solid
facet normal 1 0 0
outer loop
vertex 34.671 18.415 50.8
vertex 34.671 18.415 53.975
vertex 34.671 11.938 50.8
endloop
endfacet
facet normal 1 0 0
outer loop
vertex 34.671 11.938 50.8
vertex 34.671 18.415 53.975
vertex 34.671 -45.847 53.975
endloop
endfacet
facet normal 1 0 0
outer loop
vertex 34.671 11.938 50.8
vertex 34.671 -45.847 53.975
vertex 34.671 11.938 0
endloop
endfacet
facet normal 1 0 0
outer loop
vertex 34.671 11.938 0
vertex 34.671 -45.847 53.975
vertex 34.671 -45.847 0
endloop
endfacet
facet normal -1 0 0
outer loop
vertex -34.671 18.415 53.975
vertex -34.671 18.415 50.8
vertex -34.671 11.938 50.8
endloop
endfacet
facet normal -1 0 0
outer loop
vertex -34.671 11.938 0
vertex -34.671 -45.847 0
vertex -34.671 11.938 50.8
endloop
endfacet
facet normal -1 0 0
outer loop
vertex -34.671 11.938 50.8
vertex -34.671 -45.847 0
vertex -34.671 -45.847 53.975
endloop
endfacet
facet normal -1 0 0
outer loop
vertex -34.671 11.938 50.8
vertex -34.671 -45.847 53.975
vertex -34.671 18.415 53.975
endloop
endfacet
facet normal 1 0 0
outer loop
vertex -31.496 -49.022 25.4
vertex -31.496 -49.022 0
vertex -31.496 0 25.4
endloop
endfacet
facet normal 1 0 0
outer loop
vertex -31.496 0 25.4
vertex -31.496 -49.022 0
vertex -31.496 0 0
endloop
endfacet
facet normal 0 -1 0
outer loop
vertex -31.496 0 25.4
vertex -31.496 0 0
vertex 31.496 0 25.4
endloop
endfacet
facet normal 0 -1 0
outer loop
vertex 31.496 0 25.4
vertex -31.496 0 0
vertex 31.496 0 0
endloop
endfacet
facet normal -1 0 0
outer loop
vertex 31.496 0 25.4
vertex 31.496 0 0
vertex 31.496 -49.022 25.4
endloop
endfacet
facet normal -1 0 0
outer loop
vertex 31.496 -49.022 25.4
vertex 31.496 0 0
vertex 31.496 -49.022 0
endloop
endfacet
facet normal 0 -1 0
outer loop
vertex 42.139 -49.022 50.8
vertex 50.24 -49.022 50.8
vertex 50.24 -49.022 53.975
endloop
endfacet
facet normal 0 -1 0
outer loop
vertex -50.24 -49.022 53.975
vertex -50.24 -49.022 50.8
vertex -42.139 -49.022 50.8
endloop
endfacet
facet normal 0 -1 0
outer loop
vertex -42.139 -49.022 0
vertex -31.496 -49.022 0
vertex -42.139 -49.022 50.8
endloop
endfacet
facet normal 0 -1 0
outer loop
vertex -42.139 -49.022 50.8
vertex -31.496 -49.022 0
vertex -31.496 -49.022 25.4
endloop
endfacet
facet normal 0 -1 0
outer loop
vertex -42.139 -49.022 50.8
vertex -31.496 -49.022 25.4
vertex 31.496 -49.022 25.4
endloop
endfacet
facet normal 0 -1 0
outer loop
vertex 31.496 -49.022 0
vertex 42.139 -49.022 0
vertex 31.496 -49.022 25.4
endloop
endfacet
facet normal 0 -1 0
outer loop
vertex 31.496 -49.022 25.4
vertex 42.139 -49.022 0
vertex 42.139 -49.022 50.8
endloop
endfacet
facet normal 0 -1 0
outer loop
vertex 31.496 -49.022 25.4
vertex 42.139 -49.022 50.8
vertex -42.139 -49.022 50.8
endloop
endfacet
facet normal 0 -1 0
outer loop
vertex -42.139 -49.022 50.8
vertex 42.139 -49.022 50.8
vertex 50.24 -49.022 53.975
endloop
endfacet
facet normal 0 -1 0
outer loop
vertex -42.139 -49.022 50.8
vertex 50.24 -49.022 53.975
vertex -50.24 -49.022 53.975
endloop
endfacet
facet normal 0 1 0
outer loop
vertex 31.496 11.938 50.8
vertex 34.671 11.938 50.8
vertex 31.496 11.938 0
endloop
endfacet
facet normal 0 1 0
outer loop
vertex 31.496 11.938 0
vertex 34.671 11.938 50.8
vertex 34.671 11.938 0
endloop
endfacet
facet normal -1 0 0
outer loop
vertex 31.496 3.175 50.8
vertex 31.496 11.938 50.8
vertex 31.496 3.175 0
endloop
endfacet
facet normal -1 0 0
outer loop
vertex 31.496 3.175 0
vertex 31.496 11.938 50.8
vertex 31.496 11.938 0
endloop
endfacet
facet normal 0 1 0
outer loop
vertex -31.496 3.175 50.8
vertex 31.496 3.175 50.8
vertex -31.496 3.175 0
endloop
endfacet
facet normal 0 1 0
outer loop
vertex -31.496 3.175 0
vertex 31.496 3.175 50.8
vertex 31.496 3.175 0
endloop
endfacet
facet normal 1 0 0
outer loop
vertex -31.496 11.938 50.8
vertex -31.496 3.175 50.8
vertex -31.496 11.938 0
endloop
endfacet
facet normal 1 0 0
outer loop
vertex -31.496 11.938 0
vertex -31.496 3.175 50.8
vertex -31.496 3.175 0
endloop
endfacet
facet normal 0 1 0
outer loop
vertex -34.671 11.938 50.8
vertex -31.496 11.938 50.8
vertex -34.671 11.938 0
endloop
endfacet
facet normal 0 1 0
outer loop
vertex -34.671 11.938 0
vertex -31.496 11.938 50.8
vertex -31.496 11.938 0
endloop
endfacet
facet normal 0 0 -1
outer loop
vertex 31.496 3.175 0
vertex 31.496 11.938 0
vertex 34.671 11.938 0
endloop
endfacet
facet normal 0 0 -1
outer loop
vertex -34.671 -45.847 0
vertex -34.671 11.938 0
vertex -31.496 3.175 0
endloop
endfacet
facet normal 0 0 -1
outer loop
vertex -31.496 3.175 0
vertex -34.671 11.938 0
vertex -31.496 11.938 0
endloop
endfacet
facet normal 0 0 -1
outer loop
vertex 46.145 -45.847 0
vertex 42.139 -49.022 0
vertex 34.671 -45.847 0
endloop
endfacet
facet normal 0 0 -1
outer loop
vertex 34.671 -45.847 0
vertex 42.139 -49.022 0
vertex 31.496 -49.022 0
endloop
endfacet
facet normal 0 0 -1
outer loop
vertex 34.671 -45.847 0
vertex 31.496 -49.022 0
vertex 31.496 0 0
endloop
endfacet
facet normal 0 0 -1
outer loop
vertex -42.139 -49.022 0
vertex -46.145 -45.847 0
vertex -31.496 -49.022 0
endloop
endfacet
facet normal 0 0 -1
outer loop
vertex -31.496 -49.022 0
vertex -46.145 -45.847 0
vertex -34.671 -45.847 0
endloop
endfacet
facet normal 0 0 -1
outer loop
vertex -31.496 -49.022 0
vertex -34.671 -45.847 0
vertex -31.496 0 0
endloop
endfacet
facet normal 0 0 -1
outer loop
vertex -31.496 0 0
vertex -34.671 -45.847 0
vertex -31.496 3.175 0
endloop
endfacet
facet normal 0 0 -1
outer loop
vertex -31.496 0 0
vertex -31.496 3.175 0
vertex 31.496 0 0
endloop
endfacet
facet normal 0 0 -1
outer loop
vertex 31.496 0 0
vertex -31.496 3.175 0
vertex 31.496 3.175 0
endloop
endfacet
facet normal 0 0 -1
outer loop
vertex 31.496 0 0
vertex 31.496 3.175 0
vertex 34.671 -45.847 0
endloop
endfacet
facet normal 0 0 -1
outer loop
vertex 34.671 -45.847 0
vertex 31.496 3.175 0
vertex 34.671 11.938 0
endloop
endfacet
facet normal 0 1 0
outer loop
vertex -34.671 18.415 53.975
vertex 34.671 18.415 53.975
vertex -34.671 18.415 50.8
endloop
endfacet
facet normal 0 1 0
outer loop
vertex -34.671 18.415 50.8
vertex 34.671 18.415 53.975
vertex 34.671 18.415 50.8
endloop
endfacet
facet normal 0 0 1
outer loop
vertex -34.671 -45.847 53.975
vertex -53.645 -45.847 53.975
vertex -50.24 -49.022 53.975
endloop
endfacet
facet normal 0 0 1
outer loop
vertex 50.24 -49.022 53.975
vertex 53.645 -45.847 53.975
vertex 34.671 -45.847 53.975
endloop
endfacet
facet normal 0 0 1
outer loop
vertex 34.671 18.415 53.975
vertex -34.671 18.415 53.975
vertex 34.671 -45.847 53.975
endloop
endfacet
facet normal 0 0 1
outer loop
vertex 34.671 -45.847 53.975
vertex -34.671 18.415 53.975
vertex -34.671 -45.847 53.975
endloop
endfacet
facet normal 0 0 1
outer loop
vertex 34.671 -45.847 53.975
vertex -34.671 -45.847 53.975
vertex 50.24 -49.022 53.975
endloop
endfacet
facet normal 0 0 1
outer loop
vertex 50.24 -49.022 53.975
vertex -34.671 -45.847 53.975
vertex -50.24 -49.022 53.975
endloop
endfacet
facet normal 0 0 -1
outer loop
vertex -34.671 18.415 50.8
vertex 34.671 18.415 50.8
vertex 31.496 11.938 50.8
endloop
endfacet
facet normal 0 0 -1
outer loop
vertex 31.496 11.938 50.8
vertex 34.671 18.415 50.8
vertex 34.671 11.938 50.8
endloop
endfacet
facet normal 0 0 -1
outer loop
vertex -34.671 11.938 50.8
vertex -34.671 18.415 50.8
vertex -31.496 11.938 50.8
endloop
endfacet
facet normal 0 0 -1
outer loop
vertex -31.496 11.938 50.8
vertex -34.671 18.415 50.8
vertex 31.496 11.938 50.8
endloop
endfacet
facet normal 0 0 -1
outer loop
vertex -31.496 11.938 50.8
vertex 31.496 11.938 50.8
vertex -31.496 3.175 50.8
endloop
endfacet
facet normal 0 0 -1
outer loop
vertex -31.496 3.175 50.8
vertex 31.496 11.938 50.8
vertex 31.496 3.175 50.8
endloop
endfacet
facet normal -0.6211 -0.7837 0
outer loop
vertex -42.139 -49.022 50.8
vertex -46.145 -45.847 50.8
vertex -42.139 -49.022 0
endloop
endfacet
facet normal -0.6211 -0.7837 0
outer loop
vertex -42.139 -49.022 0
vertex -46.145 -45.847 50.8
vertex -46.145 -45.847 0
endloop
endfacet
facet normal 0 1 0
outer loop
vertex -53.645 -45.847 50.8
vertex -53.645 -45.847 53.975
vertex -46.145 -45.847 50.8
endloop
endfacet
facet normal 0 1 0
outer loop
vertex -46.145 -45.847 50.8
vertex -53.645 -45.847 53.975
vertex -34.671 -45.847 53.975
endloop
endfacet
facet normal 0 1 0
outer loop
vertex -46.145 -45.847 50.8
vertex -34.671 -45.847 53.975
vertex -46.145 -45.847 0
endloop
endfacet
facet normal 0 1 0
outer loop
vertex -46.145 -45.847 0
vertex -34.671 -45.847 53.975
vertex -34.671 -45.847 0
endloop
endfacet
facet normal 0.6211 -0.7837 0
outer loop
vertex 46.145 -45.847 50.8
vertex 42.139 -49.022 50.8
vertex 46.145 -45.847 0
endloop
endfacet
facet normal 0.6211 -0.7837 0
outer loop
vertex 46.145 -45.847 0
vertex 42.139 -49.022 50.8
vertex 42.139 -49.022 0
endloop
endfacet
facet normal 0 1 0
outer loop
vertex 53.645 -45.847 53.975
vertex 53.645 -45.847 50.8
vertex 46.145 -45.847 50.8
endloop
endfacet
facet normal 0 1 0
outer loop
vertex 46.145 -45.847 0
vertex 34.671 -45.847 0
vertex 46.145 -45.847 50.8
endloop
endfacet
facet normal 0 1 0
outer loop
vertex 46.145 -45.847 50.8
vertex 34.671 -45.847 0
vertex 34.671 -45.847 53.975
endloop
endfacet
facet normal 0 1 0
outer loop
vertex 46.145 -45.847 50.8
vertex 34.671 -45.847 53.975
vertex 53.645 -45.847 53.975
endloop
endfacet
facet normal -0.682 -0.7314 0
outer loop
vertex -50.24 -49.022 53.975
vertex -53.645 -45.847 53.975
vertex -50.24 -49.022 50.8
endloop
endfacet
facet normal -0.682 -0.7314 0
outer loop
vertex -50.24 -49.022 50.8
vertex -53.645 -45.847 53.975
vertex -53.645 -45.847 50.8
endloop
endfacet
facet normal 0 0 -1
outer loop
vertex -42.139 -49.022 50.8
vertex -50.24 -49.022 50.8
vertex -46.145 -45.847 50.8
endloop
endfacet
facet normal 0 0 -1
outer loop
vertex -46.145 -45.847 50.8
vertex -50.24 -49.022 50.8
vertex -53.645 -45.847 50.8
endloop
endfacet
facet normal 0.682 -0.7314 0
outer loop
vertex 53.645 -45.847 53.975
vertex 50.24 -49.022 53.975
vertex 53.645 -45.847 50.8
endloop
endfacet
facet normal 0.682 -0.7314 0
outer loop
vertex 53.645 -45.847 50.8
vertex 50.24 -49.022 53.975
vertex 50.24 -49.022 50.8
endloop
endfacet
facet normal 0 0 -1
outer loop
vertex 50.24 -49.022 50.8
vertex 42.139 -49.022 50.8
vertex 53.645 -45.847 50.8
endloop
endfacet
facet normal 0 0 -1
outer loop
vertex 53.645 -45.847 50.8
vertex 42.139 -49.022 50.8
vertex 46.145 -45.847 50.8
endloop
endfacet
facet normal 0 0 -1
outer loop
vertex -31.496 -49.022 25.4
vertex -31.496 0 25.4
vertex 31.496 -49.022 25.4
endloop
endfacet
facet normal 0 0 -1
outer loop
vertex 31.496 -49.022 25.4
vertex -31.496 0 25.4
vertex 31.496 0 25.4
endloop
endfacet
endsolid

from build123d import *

# Parameters (mm, degrees)
BOSS_EXTRUDE2_DEPTH = 50.8
SKETCH3_W           = 69.342
SKETCH3_H           = 67.437
BOSS_EXTRUDE3_DEPTH = 3.175
BOSS_EXTRUDE4_DEPTH = 53.975
BOSS_EXTRUDE6_DEPTH = 3.175
SKETCH6_W           = 62.992
SKETCH6_H           = 49.022
BOSS_EXTRUDE7_DEPTH = 25.4


with BuildPart() as part:
    # Sketch2 → Boss-Extrude2 (new body)
    with BuildSketch(Plane.XY):
        Polygon((-34.671, -49.022), (-31.496, -49.022), (-31.496, 0), (31.496, 0), (31.496, -49.022), (34.671, -49.022), (34.671, 11.938), (31.496, 11.938), (31.496, 3.175), (-31.496, 3.175), (-31.496, 11.938), (-34.671, 11.938), align=None)
    extrude(amount=BOSS_EXTRUDE2_DEPTH)

    # Sketch3 → Boss-Extrude3 (add)
    with BuildSketch(Plane.XY.offset(50.8)):
        with Locations((0, -15.3035)):
            Rectangle(SKETCH3_W, SKETCH3_H)
    extrude(amount=BOSS_EXTRUDE3_DEPTH)

    # Sketch4 → Boss-Extrude4 (add)
    with BuildSketch(Plane.XY.offset(53.975)):
        with BuildLine():
            Line((-34.671, -49.022), (-42.1386, -49.022))
            ThreePointArc((-42.1386, -49.022), (-44.170473584, -47.470511893), (-46.145273507, -45.847))
            Line((-46.145273507, -45.847), (-34.671, -45.847))
            Line((-34.671, -45.847), (-34.671, -49.022))
        make_face()
        with BuildLine():
            Line((34.671, -45.847), (34.671, -49.022))
            Line((34.671, -49.022), (42.1386, -49.022))
            ThreePointArc((42.1386, -49.022), (44.170473584, -47.470511893), (46.145273507, -45.847))
            Line((46.145273507, -45.847), (34.671, -45.847))
        make_face()
    extrude(amount=-BOSS_EXTRUDE4_DEPTH)

    # Sketch5 → Boss-Extrude6 (add)
    with BuildSketch(Plane(origin=(0, 0, 53.975), x_dir=(-1, 0, 0), z_dir=(0, 0, -1))):
        with BuildLine():
            Line((42.1386, -49.022), (50.239896596, -49.022))
            ThreePointArc((50.239896596, -49.022), (51.966635807, -47.460510217), (53.64486804, -45.847))
            Line((53.64486804, -45.847), (46.145273507, -45.847))
            ThreePointArc((46.145273507, -45.847), (44.170473584, -47.470511893), (42.1386, -49.022))
        make_face()
        with BuildLine():
            Line((-46.145273507, -45.847), (-53.64486804, -45.847))
            ThreePointArc((-53.64486804, -45.847), (-51.966635807, -47.460510217), (-50.239896596, -49.022))
            Line((-50.239896596, -49.022), (-42.1386, -49.022))
            ThreePointArc((-42.1386, -49.022), (-44.170473584, -47.470511893), (-46.145273507, -45.847))
        make_face()
    extrude(amount=BOSS_EXTRUDE6_DEPTH)

    # Sketch6 → Boss-Extrude7 (add)
    with BuildSketch(Plane(origin=(0, 0, 50.8), x_dir=(-1, 0, 0), z_dir=(0, 0, -1))):
        with Locations((0, -24.511)):
            Rectangle(SKETCH6_W, SKETCH6_H)
    extrude(amount=BOSS_EXTRUDE7_DEPTH)


solid = part.part
